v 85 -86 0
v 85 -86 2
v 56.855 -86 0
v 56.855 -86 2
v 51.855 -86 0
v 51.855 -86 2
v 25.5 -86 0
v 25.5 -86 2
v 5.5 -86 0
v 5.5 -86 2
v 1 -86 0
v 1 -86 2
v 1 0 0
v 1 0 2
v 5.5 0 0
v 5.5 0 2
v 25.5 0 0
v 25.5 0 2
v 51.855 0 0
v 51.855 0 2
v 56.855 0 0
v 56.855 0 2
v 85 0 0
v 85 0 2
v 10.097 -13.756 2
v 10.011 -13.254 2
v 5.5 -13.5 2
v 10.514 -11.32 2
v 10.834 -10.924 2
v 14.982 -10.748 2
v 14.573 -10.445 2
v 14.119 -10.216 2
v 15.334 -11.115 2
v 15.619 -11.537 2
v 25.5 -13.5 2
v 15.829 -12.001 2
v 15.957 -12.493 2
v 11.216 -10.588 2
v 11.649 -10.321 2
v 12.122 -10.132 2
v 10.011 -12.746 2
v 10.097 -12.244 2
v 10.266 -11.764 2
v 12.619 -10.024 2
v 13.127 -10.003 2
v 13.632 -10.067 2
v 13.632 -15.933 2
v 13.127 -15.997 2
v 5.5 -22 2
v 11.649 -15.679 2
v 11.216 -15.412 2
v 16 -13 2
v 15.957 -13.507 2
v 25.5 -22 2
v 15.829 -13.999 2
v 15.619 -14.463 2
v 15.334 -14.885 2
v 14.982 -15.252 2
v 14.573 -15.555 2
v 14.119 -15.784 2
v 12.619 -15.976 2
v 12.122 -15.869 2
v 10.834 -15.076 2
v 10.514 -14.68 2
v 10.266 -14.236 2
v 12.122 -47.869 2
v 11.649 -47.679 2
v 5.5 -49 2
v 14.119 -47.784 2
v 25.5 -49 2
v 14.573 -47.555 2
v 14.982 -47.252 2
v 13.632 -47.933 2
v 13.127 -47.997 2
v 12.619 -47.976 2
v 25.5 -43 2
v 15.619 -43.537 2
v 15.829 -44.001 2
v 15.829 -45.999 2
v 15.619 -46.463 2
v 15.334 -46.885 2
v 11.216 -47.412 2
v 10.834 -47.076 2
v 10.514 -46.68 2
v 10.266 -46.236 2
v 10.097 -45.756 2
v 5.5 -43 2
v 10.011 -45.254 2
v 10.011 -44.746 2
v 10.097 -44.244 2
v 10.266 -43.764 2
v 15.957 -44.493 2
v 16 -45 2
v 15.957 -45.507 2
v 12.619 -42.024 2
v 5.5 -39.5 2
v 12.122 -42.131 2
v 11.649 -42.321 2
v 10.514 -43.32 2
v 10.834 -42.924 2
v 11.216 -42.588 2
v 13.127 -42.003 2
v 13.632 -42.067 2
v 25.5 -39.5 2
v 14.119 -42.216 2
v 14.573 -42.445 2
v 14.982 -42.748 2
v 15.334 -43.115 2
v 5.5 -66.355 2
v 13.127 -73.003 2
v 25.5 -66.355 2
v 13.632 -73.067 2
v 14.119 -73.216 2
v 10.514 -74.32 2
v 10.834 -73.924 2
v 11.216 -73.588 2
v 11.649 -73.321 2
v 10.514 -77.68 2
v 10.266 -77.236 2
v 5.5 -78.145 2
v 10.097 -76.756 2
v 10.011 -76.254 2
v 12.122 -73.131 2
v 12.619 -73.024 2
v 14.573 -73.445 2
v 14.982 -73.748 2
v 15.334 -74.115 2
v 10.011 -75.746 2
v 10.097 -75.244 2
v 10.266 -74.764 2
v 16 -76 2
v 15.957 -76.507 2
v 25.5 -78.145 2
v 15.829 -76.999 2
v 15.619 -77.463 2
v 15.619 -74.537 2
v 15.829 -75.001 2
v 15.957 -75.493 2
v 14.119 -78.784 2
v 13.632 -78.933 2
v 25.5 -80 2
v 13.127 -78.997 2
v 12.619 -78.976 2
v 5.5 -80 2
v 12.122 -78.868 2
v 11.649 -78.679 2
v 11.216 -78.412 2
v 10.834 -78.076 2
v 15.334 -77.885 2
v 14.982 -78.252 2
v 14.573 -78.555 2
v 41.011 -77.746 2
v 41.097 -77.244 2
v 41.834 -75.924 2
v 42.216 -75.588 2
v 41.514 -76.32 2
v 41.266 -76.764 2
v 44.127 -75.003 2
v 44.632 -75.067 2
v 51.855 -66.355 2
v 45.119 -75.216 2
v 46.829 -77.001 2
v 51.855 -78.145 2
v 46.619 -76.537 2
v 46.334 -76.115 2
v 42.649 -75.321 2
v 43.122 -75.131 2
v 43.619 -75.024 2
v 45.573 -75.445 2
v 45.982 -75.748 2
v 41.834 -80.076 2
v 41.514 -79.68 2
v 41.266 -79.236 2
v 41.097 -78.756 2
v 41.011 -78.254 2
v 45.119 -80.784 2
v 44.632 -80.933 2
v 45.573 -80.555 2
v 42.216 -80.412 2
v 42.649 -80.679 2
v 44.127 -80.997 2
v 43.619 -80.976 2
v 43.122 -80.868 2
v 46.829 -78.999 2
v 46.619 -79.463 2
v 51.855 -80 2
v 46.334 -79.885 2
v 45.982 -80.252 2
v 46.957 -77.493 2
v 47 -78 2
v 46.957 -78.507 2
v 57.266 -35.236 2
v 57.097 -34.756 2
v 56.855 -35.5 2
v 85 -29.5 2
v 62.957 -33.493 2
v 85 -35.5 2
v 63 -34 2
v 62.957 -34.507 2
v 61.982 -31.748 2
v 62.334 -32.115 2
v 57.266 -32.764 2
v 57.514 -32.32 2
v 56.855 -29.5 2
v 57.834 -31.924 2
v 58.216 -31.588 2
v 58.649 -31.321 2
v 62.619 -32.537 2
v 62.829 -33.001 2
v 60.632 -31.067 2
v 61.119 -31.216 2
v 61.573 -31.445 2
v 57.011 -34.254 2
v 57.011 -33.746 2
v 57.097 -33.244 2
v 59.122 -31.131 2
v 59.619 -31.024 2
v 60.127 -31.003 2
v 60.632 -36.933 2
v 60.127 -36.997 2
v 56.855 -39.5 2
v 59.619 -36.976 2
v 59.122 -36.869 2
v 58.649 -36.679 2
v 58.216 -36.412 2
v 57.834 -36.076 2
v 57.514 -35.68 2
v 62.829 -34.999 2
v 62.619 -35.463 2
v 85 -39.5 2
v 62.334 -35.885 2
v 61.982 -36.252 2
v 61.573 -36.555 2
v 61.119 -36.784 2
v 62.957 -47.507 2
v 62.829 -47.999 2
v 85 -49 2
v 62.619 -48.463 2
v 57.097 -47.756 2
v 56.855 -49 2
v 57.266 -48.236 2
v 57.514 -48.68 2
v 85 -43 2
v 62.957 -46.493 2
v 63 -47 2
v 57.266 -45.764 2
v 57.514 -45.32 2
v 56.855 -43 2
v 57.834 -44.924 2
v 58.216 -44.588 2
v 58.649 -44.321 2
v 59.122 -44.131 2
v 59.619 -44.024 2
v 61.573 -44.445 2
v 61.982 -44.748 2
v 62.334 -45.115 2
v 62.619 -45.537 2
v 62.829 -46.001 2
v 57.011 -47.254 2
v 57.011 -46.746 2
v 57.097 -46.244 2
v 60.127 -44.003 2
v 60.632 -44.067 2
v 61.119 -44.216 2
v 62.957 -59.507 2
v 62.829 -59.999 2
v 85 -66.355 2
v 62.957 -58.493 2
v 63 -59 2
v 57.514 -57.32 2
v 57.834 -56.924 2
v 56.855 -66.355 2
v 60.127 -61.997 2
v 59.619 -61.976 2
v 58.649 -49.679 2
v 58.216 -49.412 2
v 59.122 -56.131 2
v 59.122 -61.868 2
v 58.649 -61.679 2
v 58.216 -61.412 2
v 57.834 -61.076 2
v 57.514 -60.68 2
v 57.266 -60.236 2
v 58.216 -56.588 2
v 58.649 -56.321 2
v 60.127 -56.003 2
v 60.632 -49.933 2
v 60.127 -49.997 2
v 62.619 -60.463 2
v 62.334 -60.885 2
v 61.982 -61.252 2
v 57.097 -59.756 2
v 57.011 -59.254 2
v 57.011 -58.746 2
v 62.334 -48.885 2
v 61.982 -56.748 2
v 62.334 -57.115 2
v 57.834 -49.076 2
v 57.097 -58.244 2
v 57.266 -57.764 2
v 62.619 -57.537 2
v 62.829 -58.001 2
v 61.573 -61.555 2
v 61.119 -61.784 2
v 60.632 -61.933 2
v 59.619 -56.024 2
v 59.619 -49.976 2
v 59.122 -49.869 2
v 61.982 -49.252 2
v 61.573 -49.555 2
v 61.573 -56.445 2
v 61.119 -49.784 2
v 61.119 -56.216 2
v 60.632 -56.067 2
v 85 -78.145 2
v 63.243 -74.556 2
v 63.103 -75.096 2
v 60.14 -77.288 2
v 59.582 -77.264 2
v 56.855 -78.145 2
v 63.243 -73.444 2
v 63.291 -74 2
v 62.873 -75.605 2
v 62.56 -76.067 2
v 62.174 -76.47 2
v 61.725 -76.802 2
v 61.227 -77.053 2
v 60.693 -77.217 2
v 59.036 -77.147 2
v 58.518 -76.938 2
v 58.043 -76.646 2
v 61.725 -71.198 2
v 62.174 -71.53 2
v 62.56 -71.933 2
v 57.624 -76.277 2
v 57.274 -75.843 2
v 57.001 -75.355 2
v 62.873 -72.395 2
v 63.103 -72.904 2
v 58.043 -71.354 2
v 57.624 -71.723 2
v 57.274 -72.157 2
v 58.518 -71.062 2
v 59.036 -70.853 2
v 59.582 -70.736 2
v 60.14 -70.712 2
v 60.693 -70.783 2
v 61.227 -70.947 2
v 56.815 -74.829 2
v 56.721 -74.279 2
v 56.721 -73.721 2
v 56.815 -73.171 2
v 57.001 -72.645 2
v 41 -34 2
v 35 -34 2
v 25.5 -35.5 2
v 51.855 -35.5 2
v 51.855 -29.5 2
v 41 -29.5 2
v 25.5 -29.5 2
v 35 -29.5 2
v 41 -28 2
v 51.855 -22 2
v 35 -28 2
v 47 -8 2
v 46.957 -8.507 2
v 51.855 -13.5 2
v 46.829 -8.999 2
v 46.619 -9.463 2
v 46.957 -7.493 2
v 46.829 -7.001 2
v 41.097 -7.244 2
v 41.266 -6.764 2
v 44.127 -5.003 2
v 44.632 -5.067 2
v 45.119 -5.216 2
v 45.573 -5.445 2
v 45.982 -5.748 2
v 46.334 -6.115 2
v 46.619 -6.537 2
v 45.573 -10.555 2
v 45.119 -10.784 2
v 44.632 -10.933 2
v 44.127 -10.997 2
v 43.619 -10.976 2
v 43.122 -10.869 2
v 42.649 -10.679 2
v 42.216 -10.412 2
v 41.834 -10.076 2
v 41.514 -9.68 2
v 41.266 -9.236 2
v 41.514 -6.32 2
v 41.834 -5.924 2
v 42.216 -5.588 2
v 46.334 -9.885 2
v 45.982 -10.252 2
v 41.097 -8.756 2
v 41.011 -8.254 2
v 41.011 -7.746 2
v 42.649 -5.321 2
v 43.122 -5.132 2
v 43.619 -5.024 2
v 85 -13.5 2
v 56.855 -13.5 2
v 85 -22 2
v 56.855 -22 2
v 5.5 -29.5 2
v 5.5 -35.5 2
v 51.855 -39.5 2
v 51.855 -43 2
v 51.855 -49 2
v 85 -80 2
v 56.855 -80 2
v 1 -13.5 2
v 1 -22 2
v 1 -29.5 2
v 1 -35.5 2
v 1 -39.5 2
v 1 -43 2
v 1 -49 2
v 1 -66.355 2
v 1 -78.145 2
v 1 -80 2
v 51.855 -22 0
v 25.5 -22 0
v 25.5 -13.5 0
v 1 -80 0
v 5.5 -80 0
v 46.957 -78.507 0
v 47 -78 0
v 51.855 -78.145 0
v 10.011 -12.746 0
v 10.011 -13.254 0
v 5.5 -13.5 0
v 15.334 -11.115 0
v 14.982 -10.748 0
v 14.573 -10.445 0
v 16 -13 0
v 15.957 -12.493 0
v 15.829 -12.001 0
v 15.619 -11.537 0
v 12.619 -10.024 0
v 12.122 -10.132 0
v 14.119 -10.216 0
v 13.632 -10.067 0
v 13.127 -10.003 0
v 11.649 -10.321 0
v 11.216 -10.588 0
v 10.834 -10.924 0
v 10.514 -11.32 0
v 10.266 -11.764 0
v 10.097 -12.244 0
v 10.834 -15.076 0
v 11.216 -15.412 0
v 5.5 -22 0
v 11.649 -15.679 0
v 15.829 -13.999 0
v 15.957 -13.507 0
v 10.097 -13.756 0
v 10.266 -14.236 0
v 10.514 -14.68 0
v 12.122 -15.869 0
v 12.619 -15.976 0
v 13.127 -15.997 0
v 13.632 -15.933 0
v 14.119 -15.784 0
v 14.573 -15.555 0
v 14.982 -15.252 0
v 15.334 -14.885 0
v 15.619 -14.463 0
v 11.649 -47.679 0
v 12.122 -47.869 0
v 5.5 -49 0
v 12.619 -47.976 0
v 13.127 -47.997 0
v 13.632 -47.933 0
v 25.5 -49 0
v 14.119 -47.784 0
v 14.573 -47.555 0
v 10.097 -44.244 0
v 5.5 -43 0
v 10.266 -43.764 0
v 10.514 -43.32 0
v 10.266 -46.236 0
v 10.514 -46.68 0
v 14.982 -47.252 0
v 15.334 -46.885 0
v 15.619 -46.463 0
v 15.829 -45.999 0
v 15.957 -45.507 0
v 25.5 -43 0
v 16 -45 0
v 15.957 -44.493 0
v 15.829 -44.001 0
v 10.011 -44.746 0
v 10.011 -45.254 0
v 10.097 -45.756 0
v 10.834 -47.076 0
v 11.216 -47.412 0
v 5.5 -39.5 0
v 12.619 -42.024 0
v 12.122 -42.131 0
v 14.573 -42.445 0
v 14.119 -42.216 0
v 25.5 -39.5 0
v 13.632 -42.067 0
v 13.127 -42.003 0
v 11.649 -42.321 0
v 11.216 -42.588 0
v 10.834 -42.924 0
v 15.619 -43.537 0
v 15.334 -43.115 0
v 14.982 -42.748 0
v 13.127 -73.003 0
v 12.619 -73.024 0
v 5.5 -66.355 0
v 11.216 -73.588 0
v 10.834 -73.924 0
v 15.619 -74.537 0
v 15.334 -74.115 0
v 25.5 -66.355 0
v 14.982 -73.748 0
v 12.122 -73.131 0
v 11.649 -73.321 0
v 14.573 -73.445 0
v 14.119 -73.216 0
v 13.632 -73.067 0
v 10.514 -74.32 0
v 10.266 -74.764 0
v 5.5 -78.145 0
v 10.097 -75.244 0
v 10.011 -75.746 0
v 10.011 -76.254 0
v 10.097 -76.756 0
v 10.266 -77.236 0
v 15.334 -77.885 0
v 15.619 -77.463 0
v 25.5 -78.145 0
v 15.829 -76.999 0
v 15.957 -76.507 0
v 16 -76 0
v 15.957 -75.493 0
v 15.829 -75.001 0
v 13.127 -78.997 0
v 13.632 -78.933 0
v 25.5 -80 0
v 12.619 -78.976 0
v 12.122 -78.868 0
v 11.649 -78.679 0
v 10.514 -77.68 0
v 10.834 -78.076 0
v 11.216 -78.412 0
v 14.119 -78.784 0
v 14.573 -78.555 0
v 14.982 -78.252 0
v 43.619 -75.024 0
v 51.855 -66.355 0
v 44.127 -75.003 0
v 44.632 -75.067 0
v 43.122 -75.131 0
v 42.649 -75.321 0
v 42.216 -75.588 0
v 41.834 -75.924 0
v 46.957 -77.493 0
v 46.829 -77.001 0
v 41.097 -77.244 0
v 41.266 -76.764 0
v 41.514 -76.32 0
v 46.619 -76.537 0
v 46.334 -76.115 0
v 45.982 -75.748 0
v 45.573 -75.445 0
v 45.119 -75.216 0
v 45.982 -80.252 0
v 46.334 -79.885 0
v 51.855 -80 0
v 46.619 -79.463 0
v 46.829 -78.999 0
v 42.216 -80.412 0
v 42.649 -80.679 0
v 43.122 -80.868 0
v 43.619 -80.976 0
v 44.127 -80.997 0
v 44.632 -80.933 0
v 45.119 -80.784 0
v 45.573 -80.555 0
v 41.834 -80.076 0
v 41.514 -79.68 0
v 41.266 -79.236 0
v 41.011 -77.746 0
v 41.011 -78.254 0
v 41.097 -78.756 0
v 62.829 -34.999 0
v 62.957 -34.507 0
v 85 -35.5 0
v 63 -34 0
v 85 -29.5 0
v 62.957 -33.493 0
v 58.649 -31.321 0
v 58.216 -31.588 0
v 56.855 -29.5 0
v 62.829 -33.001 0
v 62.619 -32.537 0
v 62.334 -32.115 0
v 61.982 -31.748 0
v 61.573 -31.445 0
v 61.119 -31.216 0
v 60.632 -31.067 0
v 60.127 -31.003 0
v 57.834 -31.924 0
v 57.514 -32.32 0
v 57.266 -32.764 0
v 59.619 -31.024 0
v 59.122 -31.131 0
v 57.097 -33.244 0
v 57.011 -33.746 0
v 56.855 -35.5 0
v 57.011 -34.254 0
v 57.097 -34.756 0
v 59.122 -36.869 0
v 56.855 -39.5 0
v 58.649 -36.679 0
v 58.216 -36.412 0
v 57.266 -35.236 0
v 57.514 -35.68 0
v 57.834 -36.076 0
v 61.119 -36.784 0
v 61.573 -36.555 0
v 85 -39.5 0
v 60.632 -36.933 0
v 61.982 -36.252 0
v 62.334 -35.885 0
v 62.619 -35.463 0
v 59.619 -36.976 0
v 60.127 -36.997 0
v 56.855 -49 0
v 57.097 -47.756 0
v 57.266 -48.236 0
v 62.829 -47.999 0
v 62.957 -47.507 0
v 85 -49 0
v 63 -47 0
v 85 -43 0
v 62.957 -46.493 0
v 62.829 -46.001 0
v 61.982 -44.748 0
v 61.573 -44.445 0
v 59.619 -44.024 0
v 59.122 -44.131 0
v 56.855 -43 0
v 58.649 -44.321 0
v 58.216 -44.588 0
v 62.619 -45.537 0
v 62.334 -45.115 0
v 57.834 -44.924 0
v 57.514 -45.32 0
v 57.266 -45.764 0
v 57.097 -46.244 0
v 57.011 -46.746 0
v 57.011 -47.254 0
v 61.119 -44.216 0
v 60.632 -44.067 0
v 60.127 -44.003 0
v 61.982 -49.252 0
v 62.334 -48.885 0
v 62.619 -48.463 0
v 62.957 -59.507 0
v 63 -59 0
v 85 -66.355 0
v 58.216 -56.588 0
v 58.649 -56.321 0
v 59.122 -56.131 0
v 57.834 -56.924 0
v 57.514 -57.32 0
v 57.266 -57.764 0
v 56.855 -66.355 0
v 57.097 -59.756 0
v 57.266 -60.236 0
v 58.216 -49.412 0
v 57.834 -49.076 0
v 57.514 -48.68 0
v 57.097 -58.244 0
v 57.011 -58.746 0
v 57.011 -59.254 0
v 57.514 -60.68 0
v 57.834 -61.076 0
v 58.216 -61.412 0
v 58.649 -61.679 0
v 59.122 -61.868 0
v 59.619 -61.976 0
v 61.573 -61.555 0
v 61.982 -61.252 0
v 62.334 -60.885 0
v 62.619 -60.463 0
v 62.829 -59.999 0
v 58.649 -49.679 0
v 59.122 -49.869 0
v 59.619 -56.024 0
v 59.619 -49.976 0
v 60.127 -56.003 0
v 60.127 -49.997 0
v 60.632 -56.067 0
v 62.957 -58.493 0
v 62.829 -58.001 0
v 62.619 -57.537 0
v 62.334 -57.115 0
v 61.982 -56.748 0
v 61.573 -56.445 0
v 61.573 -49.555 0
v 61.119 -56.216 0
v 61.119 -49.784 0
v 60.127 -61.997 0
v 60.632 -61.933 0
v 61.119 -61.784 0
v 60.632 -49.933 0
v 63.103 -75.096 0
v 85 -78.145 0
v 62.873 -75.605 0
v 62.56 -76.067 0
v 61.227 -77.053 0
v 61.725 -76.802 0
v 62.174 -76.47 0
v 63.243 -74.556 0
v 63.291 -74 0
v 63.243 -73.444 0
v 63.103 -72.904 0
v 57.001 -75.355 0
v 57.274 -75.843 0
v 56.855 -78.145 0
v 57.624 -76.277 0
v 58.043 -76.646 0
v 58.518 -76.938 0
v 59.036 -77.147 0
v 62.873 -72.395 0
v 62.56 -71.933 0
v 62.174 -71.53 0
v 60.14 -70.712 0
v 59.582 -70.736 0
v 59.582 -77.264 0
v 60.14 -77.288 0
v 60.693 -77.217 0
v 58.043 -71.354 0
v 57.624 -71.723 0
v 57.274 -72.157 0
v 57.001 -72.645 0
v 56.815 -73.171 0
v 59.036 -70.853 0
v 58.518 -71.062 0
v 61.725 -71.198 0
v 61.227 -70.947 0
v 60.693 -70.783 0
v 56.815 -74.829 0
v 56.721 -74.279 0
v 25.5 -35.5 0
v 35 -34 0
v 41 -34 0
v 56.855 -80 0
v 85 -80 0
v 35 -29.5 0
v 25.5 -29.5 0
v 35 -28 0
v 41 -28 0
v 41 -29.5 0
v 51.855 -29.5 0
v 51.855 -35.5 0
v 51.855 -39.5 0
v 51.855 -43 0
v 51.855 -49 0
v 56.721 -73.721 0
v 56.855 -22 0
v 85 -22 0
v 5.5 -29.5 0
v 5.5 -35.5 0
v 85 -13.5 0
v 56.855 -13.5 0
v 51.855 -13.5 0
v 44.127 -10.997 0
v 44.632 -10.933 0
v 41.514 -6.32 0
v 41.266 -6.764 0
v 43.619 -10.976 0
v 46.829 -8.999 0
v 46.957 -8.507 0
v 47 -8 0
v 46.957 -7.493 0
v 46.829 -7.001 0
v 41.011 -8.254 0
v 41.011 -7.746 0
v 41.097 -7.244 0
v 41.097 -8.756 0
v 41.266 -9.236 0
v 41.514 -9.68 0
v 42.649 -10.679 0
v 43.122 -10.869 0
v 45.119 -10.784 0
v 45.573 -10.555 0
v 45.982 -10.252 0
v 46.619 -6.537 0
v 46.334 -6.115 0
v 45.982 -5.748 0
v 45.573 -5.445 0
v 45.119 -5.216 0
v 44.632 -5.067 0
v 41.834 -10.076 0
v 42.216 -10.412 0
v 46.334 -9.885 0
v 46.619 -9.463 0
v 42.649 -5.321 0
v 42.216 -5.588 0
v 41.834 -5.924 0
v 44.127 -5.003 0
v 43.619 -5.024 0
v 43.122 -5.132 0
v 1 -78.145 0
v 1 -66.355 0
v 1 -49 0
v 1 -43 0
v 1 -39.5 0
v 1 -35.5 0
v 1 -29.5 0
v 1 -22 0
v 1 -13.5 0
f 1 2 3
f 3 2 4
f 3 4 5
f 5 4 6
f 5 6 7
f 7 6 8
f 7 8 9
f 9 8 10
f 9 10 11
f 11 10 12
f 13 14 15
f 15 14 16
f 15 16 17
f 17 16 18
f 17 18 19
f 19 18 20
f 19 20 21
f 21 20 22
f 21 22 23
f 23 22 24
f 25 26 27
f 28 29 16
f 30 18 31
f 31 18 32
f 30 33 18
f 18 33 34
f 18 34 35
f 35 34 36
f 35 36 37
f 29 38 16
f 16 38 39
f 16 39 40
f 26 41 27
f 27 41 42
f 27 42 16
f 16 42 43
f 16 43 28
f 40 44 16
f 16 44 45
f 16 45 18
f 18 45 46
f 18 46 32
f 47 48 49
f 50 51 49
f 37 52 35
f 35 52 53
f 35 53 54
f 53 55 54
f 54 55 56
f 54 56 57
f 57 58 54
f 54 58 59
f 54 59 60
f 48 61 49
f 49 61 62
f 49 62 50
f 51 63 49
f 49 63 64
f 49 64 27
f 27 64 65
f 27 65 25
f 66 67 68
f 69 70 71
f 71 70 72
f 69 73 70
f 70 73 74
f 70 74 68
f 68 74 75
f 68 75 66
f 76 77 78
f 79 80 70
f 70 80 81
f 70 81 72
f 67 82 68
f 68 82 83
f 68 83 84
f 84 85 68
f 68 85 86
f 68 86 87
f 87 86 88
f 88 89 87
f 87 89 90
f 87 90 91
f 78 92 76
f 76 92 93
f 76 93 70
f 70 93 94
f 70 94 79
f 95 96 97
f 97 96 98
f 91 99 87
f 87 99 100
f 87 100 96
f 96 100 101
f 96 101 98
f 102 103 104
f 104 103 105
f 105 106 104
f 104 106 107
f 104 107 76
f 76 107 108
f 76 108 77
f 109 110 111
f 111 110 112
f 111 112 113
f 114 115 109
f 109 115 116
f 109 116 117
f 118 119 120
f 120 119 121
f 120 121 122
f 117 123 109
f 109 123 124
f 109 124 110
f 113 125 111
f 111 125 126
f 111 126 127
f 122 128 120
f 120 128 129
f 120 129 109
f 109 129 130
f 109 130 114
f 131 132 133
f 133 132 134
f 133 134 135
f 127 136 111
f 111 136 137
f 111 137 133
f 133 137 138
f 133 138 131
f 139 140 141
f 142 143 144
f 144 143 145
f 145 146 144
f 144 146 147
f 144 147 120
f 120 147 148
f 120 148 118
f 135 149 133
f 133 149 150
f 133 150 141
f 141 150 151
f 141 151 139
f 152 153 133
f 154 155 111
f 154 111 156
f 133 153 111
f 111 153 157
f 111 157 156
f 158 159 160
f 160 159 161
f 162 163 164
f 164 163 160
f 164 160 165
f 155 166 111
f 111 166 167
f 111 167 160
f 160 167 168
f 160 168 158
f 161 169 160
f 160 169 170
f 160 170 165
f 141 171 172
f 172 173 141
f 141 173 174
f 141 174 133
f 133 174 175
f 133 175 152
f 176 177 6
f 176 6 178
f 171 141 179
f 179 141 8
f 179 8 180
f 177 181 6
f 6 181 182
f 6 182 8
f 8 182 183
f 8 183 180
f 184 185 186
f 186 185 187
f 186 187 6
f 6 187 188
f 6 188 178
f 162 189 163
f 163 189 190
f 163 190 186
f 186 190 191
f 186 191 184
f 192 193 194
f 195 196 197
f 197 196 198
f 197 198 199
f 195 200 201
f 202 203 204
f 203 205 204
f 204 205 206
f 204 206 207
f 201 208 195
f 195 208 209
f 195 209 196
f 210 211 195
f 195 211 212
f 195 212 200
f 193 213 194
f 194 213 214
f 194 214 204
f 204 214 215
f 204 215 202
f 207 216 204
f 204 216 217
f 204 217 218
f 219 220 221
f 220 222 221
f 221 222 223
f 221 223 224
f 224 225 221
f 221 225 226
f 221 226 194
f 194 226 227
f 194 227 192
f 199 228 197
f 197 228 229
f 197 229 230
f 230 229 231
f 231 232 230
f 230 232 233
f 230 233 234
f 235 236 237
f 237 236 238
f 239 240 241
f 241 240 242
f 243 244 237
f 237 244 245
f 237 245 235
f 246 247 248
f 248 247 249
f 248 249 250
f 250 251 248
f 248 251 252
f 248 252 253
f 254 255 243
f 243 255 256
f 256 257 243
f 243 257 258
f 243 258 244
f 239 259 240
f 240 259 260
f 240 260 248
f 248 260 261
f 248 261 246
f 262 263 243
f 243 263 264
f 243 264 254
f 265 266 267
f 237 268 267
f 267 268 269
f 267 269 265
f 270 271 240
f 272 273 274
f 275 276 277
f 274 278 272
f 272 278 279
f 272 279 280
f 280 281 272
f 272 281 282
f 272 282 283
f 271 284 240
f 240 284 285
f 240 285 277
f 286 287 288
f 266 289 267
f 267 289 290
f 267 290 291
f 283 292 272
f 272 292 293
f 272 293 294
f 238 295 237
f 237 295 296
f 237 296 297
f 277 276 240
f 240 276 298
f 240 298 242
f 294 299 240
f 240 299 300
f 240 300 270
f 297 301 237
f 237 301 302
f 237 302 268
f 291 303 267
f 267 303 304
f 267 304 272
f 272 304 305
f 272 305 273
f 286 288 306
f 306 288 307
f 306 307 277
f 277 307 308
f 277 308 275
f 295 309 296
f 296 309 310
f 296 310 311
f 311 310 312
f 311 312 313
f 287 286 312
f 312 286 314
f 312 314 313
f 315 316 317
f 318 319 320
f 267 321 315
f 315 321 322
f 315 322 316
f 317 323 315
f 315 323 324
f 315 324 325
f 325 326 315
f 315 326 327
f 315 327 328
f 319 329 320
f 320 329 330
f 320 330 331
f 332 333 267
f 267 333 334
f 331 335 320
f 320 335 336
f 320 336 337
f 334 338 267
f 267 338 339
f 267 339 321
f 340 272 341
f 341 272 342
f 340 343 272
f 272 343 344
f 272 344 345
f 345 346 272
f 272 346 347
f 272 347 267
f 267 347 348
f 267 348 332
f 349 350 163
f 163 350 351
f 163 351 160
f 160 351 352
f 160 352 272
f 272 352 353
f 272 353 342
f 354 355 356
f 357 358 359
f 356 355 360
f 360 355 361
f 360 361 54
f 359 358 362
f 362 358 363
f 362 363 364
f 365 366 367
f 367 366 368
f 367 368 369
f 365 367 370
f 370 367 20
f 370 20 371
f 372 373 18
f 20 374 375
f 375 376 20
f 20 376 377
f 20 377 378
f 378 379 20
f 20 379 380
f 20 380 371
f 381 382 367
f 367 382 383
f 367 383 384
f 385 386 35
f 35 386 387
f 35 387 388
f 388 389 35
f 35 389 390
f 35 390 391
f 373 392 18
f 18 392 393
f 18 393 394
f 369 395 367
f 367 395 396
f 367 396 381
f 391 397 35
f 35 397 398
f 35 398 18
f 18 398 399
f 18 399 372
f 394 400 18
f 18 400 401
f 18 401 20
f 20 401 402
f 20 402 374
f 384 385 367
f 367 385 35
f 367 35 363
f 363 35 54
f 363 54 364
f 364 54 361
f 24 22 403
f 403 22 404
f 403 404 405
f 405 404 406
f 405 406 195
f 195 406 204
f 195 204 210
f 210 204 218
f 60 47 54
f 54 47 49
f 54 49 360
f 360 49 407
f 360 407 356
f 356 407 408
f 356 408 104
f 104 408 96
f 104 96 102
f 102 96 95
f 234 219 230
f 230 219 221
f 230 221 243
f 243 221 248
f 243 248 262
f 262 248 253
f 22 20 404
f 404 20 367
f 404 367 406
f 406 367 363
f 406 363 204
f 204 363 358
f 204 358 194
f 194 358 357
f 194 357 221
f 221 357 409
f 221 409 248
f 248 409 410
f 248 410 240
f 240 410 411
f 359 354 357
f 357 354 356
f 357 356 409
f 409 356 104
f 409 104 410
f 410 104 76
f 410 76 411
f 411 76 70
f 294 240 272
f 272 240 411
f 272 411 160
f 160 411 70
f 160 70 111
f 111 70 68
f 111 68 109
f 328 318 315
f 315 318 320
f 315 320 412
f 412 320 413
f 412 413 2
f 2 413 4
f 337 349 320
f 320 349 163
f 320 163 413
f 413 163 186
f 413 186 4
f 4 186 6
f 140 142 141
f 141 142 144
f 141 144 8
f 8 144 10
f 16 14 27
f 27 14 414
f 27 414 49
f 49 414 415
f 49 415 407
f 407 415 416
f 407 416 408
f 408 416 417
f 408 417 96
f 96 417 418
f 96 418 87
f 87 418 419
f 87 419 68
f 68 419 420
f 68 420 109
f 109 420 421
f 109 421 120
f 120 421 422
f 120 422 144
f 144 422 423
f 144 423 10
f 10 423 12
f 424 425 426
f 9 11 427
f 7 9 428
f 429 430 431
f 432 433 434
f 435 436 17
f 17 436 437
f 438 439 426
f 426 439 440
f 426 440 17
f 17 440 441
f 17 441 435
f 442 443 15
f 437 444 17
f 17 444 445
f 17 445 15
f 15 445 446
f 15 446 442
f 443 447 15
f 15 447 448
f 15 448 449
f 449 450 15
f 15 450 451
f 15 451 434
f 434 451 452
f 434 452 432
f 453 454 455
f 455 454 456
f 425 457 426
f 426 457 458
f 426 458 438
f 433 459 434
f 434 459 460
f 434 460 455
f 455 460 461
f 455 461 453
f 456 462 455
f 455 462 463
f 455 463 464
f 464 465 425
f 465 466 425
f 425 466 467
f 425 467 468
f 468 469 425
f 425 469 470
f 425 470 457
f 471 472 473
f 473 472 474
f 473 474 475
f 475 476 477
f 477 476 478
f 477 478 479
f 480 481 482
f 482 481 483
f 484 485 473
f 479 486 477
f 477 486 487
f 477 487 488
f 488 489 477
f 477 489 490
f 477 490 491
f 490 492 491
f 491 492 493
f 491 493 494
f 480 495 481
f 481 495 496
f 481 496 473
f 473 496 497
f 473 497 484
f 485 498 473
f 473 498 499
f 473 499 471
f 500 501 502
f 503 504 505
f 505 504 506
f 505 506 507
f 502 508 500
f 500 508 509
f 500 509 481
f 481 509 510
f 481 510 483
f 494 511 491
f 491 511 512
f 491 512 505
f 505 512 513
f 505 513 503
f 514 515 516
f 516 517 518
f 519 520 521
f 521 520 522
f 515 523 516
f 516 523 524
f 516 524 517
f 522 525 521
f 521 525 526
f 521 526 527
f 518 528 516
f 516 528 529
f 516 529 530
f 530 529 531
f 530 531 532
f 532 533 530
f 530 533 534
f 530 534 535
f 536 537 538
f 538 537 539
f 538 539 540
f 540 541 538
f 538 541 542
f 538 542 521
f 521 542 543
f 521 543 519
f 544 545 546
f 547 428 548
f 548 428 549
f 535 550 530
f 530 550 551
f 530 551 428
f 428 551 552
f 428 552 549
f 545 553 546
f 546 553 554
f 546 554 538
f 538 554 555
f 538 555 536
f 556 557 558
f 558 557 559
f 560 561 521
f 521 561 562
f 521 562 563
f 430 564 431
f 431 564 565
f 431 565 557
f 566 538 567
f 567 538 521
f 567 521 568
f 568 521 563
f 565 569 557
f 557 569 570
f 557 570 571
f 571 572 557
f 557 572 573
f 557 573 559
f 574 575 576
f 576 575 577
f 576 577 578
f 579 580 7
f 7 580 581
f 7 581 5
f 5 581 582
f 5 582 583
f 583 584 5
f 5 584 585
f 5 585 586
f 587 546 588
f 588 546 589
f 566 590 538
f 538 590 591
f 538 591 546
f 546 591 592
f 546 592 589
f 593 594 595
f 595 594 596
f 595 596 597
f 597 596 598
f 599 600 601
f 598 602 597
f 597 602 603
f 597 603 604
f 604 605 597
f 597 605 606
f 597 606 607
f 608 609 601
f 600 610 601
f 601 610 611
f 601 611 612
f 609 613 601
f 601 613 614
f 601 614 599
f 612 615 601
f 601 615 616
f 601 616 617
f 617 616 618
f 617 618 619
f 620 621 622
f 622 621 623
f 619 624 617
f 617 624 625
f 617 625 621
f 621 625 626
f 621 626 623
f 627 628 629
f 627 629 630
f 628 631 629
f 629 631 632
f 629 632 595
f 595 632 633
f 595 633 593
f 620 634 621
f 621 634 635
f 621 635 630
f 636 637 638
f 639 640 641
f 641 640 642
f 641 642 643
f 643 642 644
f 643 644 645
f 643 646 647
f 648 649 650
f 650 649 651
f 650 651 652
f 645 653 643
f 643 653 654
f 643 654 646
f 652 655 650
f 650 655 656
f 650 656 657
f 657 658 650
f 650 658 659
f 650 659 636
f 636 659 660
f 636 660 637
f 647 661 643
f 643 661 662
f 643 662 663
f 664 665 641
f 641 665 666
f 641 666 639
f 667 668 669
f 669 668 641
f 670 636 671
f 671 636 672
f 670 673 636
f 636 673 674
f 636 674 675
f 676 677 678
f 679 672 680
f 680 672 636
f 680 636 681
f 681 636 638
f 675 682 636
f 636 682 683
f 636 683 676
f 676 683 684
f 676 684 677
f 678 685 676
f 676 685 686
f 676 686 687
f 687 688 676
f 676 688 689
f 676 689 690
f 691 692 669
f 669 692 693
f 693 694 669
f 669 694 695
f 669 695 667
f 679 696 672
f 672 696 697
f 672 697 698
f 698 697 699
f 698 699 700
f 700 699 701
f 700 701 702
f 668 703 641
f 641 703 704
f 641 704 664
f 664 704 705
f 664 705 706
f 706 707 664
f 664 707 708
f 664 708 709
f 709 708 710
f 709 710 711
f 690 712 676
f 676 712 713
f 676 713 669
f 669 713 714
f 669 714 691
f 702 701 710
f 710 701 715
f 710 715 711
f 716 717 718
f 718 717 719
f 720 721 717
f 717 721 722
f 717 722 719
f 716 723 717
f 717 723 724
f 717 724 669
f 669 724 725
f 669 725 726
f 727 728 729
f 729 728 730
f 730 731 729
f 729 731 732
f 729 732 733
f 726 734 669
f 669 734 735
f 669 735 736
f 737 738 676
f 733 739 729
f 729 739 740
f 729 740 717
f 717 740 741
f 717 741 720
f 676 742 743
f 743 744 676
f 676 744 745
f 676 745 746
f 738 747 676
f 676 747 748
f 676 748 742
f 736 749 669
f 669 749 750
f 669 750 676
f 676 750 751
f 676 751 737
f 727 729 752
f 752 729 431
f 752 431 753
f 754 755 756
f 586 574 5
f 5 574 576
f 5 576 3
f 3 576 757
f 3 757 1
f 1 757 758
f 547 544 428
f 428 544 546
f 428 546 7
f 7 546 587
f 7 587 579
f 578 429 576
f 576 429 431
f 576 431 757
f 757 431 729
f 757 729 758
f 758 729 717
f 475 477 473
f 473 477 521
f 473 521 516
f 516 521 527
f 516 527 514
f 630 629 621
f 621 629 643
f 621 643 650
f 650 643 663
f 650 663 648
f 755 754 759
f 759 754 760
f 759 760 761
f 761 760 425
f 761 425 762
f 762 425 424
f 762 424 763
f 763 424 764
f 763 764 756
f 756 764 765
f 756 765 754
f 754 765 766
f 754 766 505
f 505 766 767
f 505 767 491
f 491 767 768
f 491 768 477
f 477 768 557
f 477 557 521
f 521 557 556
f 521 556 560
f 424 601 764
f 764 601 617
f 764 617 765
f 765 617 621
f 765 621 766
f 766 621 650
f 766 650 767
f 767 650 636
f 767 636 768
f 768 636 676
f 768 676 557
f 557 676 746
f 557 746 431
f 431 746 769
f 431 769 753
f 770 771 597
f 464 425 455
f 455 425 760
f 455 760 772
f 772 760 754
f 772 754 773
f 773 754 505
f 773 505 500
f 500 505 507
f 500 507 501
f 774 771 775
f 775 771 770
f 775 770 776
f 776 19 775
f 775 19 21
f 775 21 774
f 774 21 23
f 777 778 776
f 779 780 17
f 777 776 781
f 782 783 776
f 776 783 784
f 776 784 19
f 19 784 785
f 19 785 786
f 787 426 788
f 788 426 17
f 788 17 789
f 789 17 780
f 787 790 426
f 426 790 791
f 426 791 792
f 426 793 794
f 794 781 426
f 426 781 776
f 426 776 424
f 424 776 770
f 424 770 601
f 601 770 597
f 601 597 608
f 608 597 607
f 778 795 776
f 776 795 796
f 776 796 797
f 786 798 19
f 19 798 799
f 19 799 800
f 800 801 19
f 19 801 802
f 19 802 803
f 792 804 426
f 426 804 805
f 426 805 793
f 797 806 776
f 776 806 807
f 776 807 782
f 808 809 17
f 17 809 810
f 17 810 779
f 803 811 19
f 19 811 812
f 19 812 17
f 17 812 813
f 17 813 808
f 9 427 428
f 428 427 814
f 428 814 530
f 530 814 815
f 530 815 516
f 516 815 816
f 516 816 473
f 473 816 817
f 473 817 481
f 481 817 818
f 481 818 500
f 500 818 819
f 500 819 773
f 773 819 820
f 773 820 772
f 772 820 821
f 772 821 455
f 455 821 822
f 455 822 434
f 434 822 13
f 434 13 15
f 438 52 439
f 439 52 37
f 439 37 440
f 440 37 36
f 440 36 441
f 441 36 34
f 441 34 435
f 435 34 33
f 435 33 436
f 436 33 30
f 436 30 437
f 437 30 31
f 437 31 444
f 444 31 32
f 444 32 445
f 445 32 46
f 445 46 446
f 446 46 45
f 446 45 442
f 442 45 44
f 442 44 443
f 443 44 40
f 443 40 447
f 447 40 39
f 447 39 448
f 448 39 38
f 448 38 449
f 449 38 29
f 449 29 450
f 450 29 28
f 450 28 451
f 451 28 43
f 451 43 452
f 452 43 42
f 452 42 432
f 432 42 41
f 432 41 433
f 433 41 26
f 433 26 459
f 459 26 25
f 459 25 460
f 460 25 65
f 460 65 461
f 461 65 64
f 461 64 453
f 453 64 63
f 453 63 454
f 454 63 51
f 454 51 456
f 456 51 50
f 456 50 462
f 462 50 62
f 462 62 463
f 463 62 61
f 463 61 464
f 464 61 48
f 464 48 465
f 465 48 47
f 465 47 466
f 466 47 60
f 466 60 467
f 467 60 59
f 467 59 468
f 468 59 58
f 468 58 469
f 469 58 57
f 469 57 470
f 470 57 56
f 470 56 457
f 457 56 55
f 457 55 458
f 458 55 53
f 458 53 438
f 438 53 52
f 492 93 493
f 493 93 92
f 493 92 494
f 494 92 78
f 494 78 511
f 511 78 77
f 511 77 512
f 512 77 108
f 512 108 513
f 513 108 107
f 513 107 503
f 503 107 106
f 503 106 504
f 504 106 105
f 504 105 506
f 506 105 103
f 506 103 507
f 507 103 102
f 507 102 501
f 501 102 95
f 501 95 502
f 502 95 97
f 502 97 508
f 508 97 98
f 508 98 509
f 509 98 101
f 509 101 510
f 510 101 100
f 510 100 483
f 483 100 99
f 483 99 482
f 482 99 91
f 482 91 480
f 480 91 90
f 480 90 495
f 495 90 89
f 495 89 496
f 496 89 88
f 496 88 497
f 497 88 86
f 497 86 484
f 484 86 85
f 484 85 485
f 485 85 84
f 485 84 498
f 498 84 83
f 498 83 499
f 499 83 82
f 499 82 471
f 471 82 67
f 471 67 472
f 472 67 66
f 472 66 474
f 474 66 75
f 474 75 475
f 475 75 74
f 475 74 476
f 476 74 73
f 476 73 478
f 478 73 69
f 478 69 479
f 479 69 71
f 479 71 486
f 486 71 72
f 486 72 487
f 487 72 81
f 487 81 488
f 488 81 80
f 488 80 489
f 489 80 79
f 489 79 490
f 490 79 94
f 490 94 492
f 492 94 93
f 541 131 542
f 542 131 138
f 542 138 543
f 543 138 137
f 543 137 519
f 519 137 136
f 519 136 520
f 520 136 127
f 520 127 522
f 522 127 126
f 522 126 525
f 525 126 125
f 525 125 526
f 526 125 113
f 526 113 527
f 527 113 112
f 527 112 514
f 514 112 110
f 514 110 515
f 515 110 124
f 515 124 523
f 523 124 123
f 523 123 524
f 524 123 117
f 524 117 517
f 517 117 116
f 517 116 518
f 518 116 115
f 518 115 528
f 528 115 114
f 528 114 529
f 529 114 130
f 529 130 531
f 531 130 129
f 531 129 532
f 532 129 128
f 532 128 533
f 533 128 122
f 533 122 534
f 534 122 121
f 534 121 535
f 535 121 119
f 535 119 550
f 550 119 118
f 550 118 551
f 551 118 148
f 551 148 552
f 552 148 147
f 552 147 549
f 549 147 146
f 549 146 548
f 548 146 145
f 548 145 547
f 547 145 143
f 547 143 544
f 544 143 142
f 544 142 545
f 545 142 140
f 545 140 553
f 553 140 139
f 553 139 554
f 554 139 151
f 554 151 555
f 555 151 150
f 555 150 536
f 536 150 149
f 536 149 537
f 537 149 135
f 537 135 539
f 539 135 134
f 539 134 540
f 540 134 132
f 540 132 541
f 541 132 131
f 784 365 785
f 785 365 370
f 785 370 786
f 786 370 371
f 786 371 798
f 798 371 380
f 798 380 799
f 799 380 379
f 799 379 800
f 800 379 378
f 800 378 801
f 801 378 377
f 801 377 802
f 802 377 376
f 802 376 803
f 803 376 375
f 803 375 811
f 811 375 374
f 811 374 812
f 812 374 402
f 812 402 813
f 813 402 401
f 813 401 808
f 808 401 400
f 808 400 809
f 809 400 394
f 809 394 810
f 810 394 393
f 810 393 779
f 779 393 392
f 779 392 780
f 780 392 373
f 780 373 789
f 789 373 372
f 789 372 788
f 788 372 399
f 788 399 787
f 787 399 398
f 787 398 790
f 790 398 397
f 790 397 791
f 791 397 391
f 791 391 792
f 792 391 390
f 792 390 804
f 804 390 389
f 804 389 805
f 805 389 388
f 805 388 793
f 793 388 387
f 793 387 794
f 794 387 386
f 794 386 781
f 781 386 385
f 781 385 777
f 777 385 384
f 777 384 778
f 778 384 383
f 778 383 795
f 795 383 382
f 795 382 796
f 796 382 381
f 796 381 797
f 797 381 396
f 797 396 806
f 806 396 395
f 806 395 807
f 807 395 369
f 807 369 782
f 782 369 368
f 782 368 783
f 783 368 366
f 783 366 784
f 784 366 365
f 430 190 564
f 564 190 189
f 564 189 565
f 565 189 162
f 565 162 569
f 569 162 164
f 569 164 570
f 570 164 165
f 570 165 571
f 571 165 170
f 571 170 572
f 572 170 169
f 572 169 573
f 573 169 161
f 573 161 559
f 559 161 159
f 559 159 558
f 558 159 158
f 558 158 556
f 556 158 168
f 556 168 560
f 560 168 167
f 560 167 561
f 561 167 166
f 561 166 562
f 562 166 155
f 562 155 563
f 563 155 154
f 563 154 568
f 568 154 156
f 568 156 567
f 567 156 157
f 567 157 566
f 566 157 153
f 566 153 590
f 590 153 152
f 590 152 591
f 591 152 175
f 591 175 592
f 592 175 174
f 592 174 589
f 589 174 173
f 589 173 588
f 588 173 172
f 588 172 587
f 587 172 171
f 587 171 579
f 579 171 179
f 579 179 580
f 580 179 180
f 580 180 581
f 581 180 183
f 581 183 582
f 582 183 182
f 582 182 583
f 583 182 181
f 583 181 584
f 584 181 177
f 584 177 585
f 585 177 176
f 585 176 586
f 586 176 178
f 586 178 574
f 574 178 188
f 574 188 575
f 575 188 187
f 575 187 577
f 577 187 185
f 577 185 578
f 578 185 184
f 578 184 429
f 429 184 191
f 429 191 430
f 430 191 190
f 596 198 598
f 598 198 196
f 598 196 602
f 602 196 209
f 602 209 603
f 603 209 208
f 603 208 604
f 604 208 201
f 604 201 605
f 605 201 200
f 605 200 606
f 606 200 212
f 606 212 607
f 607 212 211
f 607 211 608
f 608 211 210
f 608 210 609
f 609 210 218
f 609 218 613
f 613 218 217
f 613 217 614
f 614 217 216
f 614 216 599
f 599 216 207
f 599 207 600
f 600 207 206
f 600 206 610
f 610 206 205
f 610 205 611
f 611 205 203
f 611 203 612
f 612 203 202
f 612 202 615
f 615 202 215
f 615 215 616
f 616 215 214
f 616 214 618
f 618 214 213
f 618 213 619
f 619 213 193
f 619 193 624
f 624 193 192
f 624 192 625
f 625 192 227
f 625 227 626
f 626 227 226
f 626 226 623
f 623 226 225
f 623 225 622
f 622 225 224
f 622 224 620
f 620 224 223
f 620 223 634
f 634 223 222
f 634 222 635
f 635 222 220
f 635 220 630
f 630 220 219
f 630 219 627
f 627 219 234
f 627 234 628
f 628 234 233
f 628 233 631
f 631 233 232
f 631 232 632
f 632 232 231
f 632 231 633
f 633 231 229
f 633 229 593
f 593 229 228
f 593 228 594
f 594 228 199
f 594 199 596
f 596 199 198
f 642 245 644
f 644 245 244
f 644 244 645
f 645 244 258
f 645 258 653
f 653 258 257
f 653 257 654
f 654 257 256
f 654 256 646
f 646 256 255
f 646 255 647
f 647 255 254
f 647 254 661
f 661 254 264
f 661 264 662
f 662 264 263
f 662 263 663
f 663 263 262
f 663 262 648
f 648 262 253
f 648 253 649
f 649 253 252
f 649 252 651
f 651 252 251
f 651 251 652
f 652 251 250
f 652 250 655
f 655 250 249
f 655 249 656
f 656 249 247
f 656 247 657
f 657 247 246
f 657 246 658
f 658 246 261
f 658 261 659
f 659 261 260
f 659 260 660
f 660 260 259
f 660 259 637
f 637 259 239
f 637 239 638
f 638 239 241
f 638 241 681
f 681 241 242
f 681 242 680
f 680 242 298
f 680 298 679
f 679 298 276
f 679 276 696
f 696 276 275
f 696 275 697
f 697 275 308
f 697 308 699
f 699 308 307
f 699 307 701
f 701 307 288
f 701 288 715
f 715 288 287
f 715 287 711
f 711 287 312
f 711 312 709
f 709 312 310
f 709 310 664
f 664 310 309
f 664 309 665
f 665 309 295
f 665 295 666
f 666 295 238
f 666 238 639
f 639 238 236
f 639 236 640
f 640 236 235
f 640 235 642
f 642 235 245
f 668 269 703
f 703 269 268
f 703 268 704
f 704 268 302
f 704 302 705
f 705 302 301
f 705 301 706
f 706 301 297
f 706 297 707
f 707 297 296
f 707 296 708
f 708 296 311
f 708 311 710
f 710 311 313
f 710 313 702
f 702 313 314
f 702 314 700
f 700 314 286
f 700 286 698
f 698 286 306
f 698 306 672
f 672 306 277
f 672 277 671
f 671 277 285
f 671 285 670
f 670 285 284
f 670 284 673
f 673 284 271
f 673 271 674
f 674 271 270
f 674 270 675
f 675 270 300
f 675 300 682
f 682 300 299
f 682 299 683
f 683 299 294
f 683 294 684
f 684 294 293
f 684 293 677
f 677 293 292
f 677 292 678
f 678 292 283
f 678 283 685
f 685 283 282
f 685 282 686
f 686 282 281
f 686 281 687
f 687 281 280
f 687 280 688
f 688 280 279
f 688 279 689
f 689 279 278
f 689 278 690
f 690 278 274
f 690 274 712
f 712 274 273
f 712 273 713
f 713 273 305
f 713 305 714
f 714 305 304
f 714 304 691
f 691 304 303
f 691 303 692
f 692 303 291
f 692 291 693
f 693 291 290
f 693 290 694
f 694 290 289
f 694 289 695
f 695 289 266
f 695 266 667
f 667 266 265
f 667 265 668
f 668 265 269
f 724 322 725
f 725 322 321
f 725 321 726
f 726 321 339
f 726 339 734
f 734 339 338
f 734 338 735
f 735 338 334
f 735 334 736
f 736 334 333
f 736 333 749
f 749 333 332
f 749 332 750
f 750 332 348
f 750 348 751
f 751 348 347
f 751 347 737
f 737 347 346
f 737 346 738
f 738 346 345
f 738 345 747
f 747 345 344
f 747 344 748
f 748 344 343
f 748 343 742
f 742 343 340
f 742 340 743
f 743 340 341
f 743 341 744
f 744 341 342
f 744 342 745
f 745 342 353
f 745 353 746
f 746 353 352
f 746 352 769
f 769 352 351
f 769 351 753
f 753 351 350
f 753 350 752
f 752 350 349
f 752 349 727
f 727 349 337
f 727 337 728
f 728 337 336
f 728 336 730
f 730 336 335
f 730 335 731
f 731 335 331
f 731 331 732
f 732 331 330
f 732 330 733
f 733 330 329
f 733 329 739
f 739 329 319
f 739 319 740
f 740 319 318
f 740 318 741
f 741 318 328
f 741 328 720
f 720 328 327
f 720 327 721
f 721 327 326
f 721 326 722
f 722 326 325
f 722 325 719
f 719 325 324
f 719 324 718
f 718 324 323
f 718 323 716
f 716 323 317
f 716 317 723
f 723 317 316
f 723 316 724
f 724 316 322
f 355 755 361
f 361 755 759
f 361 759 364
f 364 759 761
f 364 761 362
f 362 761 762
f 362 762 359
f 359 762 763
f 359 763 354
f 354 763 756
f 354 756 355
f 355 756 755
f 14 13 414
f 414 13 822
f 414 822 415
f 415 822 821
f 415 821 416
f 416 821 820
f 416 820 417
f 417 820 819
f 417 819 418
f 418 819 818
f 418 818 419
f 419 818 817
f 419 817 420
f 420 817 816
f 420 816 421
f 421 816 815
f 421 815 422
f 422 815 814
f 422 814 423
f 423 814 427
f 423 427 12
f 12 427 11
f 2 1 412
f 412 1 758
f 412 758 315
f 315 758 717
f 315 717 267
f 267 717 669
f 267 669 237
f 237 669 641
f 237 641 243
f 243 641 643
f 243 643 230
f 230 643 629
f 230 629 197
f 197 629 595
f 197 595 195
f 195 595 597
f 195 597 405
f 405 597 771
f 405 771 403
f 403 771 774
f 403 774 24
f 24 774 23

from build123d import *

# Parameters (mm, degrees)
SKETCH_1_W           = 86
SKETCH_1_H           = 86
EXTRUDE_1_DEPTH      = 2
SKETCH_2_R           = 3
CUT_EXTRUDE_1_DEPTH  = 3
SKETCH_3_R           = 3
CUT_EXTRUDE_2_DEPTH  = 3
SKETCH_4_R           = 3
CUT_EXTRUDE_3_DEPTH  = 3
SKETCH_6_R           = 3
CUT_EXTRUDE_4_DEPTH  = 3
SKETCH_7_R           = 3
CUT_EXTRUDE_5_DEPTH  = 3
SKETCH_8_R           = 3
CUT_EXTRUDE_6_DEPTH  = 3
SKETCH_9_R           = 3
CUT_EXTRUDE_7_DEPTH  = 3
SKETCH_10_R          = 3
CUT_EXTRUDE_8_DEPTH  = 3
SKETCH_11_R          = 3.290793372
CUT_EXTRUDE_9_DEPTH  = 3
SKETCH_12_W          = 6
SKETCH_12_H          = 6
CUT_EXTRUDE_10_DEPTH = 3
SKETCH_13_W          = 1
SKETCH_13_H          = 86
CUT_EXTRUDE_11_DEPTH = 3


with BuildPart() as part:
    # 草圖1 → 填料-伸長1 (new body)
    with BuildSketch(Plane.XY):
        with Locations((43, -43)):
            Rectangle(SKETCH_1_W, SKETCH_1_H)
    extrude(amount=EXTRUDE_1_DEPTH)

    # 草圖2 → 除料-伸長1 (cut)
    with BuildSketch(Plane.XY.offset(2)):
        with Locations((13, -13)):
            Circle(SKETCH_2_R)
    extrude(amount=-CUT_EXTRUDE_1_DEPTH, mode=Mode.SUBTRACT)

    # 草圖3 → 除料-伸長2 (cut)
    with BuildSketch(Plane.XY.offset(2)):
        with Locations((13, -45)):
            Circle(SKETCH_3_R)
    extrude(amount=-CUT_EXTRUDE_2_DEPTH, mode=Mode.SUBTRACT)

    # 草圖4 → 除料-伸長3 (cut)
    with BuildSketch(Plane.XY.offset(2)):
        with Locations((13, -76)):
            Circle(SKETCH_4_R)
    extrude(amount=-CUT_EXTRUDE_3_DEPTH, mode=Mode.SUBTRACT)

    # 草圖6 → 除料-伸長4 (cut)
    with BuildSketch(Plane.XY.offset(2)):
        with Locations((44, -8)):
            Circle(SKETCH_6_R)
    extrude(amount=-CUT_EXTRUDE_4_DEPTH, mode=Mode.SUBTRACT)

    # 草圖7 → 除料-伸長5 (cut)
    with BuildSketch(Plane.XY.offset(2)):
        with Locations((44, -78)):
            Circle(SKETCH_7_R)
    extrude(amount=-CUT_EXTRUDE_5_DEPTH, mode=Mode.SUBTRACT)

    # 草圖8 → 除料-伸長6 (cut)
    with BuildSketch(Plane.XY.offset(2)):
        with Locations((60, -34)):
            Circle(SKETCH_8_R)
    extrude(amount=-CUT_EXTRUDE_6_DEPTH, mode=Mode.SUBTRACT)

    # 草圖9 → 除料-伸長7 (cut)
    with BuildSketch(Plane.XY.offset(2)):
        with Locations((60, -47)):
            Circle(SKETCH_9_R)
    extrude(amount=-CUT_EXTRUDE_7_DEPTH, mode=Mode.SUBTRACT)

    # 草圖10 → 除料-伸長8 (cut)
    with BuildSketch(Plane.XY.offset(2)):
        with Locations((60, -59)):
            Circle(SKETCH_10_R)
    extrude(amount=-CUT_EXTRUDE_8_DEPTH, mode=Mode.SUBTRACT)

    # 草圖11 → 除料-伸長9 (cut)
    with BuildSketch(Plane.XY.offset(2)):
        with Locations((60, -74)):
            Circle(SKETCH_11_R)
    extrude(amount=-CUT_EXTRUDE_9_DEPTH, mode=Mode.SUBTRACT)

    # 草圖12 → 除料-伸長10 (cut)
    with BuildSketch(Plane.XY.offset(2)):
        with Locations((38, -31)):
            Rectangle(SKETCH_12_W, SKETCH_12_H)
    extrude(amount=-CUT_EXTRUDE_10_DEPTH, mode=Mode.SUBTRACT)

    # 草圖13 → 除料-伸長11 (cut)
    with BuildSketch(Plane.XY.offset(2)):
        with Locations((85.5, -43)):
            Rectangle(SKETCH_13_W, SKETCH_13_H)
        with Locations((0.5, -43)):
            Rectangle(SKETCH_13_W, SKETCH_13_H)
    extrude(amount=-CUT_EXTRUDE_11_DEPTH, mode=Mode.SUBTRACT)


solid = part.part
